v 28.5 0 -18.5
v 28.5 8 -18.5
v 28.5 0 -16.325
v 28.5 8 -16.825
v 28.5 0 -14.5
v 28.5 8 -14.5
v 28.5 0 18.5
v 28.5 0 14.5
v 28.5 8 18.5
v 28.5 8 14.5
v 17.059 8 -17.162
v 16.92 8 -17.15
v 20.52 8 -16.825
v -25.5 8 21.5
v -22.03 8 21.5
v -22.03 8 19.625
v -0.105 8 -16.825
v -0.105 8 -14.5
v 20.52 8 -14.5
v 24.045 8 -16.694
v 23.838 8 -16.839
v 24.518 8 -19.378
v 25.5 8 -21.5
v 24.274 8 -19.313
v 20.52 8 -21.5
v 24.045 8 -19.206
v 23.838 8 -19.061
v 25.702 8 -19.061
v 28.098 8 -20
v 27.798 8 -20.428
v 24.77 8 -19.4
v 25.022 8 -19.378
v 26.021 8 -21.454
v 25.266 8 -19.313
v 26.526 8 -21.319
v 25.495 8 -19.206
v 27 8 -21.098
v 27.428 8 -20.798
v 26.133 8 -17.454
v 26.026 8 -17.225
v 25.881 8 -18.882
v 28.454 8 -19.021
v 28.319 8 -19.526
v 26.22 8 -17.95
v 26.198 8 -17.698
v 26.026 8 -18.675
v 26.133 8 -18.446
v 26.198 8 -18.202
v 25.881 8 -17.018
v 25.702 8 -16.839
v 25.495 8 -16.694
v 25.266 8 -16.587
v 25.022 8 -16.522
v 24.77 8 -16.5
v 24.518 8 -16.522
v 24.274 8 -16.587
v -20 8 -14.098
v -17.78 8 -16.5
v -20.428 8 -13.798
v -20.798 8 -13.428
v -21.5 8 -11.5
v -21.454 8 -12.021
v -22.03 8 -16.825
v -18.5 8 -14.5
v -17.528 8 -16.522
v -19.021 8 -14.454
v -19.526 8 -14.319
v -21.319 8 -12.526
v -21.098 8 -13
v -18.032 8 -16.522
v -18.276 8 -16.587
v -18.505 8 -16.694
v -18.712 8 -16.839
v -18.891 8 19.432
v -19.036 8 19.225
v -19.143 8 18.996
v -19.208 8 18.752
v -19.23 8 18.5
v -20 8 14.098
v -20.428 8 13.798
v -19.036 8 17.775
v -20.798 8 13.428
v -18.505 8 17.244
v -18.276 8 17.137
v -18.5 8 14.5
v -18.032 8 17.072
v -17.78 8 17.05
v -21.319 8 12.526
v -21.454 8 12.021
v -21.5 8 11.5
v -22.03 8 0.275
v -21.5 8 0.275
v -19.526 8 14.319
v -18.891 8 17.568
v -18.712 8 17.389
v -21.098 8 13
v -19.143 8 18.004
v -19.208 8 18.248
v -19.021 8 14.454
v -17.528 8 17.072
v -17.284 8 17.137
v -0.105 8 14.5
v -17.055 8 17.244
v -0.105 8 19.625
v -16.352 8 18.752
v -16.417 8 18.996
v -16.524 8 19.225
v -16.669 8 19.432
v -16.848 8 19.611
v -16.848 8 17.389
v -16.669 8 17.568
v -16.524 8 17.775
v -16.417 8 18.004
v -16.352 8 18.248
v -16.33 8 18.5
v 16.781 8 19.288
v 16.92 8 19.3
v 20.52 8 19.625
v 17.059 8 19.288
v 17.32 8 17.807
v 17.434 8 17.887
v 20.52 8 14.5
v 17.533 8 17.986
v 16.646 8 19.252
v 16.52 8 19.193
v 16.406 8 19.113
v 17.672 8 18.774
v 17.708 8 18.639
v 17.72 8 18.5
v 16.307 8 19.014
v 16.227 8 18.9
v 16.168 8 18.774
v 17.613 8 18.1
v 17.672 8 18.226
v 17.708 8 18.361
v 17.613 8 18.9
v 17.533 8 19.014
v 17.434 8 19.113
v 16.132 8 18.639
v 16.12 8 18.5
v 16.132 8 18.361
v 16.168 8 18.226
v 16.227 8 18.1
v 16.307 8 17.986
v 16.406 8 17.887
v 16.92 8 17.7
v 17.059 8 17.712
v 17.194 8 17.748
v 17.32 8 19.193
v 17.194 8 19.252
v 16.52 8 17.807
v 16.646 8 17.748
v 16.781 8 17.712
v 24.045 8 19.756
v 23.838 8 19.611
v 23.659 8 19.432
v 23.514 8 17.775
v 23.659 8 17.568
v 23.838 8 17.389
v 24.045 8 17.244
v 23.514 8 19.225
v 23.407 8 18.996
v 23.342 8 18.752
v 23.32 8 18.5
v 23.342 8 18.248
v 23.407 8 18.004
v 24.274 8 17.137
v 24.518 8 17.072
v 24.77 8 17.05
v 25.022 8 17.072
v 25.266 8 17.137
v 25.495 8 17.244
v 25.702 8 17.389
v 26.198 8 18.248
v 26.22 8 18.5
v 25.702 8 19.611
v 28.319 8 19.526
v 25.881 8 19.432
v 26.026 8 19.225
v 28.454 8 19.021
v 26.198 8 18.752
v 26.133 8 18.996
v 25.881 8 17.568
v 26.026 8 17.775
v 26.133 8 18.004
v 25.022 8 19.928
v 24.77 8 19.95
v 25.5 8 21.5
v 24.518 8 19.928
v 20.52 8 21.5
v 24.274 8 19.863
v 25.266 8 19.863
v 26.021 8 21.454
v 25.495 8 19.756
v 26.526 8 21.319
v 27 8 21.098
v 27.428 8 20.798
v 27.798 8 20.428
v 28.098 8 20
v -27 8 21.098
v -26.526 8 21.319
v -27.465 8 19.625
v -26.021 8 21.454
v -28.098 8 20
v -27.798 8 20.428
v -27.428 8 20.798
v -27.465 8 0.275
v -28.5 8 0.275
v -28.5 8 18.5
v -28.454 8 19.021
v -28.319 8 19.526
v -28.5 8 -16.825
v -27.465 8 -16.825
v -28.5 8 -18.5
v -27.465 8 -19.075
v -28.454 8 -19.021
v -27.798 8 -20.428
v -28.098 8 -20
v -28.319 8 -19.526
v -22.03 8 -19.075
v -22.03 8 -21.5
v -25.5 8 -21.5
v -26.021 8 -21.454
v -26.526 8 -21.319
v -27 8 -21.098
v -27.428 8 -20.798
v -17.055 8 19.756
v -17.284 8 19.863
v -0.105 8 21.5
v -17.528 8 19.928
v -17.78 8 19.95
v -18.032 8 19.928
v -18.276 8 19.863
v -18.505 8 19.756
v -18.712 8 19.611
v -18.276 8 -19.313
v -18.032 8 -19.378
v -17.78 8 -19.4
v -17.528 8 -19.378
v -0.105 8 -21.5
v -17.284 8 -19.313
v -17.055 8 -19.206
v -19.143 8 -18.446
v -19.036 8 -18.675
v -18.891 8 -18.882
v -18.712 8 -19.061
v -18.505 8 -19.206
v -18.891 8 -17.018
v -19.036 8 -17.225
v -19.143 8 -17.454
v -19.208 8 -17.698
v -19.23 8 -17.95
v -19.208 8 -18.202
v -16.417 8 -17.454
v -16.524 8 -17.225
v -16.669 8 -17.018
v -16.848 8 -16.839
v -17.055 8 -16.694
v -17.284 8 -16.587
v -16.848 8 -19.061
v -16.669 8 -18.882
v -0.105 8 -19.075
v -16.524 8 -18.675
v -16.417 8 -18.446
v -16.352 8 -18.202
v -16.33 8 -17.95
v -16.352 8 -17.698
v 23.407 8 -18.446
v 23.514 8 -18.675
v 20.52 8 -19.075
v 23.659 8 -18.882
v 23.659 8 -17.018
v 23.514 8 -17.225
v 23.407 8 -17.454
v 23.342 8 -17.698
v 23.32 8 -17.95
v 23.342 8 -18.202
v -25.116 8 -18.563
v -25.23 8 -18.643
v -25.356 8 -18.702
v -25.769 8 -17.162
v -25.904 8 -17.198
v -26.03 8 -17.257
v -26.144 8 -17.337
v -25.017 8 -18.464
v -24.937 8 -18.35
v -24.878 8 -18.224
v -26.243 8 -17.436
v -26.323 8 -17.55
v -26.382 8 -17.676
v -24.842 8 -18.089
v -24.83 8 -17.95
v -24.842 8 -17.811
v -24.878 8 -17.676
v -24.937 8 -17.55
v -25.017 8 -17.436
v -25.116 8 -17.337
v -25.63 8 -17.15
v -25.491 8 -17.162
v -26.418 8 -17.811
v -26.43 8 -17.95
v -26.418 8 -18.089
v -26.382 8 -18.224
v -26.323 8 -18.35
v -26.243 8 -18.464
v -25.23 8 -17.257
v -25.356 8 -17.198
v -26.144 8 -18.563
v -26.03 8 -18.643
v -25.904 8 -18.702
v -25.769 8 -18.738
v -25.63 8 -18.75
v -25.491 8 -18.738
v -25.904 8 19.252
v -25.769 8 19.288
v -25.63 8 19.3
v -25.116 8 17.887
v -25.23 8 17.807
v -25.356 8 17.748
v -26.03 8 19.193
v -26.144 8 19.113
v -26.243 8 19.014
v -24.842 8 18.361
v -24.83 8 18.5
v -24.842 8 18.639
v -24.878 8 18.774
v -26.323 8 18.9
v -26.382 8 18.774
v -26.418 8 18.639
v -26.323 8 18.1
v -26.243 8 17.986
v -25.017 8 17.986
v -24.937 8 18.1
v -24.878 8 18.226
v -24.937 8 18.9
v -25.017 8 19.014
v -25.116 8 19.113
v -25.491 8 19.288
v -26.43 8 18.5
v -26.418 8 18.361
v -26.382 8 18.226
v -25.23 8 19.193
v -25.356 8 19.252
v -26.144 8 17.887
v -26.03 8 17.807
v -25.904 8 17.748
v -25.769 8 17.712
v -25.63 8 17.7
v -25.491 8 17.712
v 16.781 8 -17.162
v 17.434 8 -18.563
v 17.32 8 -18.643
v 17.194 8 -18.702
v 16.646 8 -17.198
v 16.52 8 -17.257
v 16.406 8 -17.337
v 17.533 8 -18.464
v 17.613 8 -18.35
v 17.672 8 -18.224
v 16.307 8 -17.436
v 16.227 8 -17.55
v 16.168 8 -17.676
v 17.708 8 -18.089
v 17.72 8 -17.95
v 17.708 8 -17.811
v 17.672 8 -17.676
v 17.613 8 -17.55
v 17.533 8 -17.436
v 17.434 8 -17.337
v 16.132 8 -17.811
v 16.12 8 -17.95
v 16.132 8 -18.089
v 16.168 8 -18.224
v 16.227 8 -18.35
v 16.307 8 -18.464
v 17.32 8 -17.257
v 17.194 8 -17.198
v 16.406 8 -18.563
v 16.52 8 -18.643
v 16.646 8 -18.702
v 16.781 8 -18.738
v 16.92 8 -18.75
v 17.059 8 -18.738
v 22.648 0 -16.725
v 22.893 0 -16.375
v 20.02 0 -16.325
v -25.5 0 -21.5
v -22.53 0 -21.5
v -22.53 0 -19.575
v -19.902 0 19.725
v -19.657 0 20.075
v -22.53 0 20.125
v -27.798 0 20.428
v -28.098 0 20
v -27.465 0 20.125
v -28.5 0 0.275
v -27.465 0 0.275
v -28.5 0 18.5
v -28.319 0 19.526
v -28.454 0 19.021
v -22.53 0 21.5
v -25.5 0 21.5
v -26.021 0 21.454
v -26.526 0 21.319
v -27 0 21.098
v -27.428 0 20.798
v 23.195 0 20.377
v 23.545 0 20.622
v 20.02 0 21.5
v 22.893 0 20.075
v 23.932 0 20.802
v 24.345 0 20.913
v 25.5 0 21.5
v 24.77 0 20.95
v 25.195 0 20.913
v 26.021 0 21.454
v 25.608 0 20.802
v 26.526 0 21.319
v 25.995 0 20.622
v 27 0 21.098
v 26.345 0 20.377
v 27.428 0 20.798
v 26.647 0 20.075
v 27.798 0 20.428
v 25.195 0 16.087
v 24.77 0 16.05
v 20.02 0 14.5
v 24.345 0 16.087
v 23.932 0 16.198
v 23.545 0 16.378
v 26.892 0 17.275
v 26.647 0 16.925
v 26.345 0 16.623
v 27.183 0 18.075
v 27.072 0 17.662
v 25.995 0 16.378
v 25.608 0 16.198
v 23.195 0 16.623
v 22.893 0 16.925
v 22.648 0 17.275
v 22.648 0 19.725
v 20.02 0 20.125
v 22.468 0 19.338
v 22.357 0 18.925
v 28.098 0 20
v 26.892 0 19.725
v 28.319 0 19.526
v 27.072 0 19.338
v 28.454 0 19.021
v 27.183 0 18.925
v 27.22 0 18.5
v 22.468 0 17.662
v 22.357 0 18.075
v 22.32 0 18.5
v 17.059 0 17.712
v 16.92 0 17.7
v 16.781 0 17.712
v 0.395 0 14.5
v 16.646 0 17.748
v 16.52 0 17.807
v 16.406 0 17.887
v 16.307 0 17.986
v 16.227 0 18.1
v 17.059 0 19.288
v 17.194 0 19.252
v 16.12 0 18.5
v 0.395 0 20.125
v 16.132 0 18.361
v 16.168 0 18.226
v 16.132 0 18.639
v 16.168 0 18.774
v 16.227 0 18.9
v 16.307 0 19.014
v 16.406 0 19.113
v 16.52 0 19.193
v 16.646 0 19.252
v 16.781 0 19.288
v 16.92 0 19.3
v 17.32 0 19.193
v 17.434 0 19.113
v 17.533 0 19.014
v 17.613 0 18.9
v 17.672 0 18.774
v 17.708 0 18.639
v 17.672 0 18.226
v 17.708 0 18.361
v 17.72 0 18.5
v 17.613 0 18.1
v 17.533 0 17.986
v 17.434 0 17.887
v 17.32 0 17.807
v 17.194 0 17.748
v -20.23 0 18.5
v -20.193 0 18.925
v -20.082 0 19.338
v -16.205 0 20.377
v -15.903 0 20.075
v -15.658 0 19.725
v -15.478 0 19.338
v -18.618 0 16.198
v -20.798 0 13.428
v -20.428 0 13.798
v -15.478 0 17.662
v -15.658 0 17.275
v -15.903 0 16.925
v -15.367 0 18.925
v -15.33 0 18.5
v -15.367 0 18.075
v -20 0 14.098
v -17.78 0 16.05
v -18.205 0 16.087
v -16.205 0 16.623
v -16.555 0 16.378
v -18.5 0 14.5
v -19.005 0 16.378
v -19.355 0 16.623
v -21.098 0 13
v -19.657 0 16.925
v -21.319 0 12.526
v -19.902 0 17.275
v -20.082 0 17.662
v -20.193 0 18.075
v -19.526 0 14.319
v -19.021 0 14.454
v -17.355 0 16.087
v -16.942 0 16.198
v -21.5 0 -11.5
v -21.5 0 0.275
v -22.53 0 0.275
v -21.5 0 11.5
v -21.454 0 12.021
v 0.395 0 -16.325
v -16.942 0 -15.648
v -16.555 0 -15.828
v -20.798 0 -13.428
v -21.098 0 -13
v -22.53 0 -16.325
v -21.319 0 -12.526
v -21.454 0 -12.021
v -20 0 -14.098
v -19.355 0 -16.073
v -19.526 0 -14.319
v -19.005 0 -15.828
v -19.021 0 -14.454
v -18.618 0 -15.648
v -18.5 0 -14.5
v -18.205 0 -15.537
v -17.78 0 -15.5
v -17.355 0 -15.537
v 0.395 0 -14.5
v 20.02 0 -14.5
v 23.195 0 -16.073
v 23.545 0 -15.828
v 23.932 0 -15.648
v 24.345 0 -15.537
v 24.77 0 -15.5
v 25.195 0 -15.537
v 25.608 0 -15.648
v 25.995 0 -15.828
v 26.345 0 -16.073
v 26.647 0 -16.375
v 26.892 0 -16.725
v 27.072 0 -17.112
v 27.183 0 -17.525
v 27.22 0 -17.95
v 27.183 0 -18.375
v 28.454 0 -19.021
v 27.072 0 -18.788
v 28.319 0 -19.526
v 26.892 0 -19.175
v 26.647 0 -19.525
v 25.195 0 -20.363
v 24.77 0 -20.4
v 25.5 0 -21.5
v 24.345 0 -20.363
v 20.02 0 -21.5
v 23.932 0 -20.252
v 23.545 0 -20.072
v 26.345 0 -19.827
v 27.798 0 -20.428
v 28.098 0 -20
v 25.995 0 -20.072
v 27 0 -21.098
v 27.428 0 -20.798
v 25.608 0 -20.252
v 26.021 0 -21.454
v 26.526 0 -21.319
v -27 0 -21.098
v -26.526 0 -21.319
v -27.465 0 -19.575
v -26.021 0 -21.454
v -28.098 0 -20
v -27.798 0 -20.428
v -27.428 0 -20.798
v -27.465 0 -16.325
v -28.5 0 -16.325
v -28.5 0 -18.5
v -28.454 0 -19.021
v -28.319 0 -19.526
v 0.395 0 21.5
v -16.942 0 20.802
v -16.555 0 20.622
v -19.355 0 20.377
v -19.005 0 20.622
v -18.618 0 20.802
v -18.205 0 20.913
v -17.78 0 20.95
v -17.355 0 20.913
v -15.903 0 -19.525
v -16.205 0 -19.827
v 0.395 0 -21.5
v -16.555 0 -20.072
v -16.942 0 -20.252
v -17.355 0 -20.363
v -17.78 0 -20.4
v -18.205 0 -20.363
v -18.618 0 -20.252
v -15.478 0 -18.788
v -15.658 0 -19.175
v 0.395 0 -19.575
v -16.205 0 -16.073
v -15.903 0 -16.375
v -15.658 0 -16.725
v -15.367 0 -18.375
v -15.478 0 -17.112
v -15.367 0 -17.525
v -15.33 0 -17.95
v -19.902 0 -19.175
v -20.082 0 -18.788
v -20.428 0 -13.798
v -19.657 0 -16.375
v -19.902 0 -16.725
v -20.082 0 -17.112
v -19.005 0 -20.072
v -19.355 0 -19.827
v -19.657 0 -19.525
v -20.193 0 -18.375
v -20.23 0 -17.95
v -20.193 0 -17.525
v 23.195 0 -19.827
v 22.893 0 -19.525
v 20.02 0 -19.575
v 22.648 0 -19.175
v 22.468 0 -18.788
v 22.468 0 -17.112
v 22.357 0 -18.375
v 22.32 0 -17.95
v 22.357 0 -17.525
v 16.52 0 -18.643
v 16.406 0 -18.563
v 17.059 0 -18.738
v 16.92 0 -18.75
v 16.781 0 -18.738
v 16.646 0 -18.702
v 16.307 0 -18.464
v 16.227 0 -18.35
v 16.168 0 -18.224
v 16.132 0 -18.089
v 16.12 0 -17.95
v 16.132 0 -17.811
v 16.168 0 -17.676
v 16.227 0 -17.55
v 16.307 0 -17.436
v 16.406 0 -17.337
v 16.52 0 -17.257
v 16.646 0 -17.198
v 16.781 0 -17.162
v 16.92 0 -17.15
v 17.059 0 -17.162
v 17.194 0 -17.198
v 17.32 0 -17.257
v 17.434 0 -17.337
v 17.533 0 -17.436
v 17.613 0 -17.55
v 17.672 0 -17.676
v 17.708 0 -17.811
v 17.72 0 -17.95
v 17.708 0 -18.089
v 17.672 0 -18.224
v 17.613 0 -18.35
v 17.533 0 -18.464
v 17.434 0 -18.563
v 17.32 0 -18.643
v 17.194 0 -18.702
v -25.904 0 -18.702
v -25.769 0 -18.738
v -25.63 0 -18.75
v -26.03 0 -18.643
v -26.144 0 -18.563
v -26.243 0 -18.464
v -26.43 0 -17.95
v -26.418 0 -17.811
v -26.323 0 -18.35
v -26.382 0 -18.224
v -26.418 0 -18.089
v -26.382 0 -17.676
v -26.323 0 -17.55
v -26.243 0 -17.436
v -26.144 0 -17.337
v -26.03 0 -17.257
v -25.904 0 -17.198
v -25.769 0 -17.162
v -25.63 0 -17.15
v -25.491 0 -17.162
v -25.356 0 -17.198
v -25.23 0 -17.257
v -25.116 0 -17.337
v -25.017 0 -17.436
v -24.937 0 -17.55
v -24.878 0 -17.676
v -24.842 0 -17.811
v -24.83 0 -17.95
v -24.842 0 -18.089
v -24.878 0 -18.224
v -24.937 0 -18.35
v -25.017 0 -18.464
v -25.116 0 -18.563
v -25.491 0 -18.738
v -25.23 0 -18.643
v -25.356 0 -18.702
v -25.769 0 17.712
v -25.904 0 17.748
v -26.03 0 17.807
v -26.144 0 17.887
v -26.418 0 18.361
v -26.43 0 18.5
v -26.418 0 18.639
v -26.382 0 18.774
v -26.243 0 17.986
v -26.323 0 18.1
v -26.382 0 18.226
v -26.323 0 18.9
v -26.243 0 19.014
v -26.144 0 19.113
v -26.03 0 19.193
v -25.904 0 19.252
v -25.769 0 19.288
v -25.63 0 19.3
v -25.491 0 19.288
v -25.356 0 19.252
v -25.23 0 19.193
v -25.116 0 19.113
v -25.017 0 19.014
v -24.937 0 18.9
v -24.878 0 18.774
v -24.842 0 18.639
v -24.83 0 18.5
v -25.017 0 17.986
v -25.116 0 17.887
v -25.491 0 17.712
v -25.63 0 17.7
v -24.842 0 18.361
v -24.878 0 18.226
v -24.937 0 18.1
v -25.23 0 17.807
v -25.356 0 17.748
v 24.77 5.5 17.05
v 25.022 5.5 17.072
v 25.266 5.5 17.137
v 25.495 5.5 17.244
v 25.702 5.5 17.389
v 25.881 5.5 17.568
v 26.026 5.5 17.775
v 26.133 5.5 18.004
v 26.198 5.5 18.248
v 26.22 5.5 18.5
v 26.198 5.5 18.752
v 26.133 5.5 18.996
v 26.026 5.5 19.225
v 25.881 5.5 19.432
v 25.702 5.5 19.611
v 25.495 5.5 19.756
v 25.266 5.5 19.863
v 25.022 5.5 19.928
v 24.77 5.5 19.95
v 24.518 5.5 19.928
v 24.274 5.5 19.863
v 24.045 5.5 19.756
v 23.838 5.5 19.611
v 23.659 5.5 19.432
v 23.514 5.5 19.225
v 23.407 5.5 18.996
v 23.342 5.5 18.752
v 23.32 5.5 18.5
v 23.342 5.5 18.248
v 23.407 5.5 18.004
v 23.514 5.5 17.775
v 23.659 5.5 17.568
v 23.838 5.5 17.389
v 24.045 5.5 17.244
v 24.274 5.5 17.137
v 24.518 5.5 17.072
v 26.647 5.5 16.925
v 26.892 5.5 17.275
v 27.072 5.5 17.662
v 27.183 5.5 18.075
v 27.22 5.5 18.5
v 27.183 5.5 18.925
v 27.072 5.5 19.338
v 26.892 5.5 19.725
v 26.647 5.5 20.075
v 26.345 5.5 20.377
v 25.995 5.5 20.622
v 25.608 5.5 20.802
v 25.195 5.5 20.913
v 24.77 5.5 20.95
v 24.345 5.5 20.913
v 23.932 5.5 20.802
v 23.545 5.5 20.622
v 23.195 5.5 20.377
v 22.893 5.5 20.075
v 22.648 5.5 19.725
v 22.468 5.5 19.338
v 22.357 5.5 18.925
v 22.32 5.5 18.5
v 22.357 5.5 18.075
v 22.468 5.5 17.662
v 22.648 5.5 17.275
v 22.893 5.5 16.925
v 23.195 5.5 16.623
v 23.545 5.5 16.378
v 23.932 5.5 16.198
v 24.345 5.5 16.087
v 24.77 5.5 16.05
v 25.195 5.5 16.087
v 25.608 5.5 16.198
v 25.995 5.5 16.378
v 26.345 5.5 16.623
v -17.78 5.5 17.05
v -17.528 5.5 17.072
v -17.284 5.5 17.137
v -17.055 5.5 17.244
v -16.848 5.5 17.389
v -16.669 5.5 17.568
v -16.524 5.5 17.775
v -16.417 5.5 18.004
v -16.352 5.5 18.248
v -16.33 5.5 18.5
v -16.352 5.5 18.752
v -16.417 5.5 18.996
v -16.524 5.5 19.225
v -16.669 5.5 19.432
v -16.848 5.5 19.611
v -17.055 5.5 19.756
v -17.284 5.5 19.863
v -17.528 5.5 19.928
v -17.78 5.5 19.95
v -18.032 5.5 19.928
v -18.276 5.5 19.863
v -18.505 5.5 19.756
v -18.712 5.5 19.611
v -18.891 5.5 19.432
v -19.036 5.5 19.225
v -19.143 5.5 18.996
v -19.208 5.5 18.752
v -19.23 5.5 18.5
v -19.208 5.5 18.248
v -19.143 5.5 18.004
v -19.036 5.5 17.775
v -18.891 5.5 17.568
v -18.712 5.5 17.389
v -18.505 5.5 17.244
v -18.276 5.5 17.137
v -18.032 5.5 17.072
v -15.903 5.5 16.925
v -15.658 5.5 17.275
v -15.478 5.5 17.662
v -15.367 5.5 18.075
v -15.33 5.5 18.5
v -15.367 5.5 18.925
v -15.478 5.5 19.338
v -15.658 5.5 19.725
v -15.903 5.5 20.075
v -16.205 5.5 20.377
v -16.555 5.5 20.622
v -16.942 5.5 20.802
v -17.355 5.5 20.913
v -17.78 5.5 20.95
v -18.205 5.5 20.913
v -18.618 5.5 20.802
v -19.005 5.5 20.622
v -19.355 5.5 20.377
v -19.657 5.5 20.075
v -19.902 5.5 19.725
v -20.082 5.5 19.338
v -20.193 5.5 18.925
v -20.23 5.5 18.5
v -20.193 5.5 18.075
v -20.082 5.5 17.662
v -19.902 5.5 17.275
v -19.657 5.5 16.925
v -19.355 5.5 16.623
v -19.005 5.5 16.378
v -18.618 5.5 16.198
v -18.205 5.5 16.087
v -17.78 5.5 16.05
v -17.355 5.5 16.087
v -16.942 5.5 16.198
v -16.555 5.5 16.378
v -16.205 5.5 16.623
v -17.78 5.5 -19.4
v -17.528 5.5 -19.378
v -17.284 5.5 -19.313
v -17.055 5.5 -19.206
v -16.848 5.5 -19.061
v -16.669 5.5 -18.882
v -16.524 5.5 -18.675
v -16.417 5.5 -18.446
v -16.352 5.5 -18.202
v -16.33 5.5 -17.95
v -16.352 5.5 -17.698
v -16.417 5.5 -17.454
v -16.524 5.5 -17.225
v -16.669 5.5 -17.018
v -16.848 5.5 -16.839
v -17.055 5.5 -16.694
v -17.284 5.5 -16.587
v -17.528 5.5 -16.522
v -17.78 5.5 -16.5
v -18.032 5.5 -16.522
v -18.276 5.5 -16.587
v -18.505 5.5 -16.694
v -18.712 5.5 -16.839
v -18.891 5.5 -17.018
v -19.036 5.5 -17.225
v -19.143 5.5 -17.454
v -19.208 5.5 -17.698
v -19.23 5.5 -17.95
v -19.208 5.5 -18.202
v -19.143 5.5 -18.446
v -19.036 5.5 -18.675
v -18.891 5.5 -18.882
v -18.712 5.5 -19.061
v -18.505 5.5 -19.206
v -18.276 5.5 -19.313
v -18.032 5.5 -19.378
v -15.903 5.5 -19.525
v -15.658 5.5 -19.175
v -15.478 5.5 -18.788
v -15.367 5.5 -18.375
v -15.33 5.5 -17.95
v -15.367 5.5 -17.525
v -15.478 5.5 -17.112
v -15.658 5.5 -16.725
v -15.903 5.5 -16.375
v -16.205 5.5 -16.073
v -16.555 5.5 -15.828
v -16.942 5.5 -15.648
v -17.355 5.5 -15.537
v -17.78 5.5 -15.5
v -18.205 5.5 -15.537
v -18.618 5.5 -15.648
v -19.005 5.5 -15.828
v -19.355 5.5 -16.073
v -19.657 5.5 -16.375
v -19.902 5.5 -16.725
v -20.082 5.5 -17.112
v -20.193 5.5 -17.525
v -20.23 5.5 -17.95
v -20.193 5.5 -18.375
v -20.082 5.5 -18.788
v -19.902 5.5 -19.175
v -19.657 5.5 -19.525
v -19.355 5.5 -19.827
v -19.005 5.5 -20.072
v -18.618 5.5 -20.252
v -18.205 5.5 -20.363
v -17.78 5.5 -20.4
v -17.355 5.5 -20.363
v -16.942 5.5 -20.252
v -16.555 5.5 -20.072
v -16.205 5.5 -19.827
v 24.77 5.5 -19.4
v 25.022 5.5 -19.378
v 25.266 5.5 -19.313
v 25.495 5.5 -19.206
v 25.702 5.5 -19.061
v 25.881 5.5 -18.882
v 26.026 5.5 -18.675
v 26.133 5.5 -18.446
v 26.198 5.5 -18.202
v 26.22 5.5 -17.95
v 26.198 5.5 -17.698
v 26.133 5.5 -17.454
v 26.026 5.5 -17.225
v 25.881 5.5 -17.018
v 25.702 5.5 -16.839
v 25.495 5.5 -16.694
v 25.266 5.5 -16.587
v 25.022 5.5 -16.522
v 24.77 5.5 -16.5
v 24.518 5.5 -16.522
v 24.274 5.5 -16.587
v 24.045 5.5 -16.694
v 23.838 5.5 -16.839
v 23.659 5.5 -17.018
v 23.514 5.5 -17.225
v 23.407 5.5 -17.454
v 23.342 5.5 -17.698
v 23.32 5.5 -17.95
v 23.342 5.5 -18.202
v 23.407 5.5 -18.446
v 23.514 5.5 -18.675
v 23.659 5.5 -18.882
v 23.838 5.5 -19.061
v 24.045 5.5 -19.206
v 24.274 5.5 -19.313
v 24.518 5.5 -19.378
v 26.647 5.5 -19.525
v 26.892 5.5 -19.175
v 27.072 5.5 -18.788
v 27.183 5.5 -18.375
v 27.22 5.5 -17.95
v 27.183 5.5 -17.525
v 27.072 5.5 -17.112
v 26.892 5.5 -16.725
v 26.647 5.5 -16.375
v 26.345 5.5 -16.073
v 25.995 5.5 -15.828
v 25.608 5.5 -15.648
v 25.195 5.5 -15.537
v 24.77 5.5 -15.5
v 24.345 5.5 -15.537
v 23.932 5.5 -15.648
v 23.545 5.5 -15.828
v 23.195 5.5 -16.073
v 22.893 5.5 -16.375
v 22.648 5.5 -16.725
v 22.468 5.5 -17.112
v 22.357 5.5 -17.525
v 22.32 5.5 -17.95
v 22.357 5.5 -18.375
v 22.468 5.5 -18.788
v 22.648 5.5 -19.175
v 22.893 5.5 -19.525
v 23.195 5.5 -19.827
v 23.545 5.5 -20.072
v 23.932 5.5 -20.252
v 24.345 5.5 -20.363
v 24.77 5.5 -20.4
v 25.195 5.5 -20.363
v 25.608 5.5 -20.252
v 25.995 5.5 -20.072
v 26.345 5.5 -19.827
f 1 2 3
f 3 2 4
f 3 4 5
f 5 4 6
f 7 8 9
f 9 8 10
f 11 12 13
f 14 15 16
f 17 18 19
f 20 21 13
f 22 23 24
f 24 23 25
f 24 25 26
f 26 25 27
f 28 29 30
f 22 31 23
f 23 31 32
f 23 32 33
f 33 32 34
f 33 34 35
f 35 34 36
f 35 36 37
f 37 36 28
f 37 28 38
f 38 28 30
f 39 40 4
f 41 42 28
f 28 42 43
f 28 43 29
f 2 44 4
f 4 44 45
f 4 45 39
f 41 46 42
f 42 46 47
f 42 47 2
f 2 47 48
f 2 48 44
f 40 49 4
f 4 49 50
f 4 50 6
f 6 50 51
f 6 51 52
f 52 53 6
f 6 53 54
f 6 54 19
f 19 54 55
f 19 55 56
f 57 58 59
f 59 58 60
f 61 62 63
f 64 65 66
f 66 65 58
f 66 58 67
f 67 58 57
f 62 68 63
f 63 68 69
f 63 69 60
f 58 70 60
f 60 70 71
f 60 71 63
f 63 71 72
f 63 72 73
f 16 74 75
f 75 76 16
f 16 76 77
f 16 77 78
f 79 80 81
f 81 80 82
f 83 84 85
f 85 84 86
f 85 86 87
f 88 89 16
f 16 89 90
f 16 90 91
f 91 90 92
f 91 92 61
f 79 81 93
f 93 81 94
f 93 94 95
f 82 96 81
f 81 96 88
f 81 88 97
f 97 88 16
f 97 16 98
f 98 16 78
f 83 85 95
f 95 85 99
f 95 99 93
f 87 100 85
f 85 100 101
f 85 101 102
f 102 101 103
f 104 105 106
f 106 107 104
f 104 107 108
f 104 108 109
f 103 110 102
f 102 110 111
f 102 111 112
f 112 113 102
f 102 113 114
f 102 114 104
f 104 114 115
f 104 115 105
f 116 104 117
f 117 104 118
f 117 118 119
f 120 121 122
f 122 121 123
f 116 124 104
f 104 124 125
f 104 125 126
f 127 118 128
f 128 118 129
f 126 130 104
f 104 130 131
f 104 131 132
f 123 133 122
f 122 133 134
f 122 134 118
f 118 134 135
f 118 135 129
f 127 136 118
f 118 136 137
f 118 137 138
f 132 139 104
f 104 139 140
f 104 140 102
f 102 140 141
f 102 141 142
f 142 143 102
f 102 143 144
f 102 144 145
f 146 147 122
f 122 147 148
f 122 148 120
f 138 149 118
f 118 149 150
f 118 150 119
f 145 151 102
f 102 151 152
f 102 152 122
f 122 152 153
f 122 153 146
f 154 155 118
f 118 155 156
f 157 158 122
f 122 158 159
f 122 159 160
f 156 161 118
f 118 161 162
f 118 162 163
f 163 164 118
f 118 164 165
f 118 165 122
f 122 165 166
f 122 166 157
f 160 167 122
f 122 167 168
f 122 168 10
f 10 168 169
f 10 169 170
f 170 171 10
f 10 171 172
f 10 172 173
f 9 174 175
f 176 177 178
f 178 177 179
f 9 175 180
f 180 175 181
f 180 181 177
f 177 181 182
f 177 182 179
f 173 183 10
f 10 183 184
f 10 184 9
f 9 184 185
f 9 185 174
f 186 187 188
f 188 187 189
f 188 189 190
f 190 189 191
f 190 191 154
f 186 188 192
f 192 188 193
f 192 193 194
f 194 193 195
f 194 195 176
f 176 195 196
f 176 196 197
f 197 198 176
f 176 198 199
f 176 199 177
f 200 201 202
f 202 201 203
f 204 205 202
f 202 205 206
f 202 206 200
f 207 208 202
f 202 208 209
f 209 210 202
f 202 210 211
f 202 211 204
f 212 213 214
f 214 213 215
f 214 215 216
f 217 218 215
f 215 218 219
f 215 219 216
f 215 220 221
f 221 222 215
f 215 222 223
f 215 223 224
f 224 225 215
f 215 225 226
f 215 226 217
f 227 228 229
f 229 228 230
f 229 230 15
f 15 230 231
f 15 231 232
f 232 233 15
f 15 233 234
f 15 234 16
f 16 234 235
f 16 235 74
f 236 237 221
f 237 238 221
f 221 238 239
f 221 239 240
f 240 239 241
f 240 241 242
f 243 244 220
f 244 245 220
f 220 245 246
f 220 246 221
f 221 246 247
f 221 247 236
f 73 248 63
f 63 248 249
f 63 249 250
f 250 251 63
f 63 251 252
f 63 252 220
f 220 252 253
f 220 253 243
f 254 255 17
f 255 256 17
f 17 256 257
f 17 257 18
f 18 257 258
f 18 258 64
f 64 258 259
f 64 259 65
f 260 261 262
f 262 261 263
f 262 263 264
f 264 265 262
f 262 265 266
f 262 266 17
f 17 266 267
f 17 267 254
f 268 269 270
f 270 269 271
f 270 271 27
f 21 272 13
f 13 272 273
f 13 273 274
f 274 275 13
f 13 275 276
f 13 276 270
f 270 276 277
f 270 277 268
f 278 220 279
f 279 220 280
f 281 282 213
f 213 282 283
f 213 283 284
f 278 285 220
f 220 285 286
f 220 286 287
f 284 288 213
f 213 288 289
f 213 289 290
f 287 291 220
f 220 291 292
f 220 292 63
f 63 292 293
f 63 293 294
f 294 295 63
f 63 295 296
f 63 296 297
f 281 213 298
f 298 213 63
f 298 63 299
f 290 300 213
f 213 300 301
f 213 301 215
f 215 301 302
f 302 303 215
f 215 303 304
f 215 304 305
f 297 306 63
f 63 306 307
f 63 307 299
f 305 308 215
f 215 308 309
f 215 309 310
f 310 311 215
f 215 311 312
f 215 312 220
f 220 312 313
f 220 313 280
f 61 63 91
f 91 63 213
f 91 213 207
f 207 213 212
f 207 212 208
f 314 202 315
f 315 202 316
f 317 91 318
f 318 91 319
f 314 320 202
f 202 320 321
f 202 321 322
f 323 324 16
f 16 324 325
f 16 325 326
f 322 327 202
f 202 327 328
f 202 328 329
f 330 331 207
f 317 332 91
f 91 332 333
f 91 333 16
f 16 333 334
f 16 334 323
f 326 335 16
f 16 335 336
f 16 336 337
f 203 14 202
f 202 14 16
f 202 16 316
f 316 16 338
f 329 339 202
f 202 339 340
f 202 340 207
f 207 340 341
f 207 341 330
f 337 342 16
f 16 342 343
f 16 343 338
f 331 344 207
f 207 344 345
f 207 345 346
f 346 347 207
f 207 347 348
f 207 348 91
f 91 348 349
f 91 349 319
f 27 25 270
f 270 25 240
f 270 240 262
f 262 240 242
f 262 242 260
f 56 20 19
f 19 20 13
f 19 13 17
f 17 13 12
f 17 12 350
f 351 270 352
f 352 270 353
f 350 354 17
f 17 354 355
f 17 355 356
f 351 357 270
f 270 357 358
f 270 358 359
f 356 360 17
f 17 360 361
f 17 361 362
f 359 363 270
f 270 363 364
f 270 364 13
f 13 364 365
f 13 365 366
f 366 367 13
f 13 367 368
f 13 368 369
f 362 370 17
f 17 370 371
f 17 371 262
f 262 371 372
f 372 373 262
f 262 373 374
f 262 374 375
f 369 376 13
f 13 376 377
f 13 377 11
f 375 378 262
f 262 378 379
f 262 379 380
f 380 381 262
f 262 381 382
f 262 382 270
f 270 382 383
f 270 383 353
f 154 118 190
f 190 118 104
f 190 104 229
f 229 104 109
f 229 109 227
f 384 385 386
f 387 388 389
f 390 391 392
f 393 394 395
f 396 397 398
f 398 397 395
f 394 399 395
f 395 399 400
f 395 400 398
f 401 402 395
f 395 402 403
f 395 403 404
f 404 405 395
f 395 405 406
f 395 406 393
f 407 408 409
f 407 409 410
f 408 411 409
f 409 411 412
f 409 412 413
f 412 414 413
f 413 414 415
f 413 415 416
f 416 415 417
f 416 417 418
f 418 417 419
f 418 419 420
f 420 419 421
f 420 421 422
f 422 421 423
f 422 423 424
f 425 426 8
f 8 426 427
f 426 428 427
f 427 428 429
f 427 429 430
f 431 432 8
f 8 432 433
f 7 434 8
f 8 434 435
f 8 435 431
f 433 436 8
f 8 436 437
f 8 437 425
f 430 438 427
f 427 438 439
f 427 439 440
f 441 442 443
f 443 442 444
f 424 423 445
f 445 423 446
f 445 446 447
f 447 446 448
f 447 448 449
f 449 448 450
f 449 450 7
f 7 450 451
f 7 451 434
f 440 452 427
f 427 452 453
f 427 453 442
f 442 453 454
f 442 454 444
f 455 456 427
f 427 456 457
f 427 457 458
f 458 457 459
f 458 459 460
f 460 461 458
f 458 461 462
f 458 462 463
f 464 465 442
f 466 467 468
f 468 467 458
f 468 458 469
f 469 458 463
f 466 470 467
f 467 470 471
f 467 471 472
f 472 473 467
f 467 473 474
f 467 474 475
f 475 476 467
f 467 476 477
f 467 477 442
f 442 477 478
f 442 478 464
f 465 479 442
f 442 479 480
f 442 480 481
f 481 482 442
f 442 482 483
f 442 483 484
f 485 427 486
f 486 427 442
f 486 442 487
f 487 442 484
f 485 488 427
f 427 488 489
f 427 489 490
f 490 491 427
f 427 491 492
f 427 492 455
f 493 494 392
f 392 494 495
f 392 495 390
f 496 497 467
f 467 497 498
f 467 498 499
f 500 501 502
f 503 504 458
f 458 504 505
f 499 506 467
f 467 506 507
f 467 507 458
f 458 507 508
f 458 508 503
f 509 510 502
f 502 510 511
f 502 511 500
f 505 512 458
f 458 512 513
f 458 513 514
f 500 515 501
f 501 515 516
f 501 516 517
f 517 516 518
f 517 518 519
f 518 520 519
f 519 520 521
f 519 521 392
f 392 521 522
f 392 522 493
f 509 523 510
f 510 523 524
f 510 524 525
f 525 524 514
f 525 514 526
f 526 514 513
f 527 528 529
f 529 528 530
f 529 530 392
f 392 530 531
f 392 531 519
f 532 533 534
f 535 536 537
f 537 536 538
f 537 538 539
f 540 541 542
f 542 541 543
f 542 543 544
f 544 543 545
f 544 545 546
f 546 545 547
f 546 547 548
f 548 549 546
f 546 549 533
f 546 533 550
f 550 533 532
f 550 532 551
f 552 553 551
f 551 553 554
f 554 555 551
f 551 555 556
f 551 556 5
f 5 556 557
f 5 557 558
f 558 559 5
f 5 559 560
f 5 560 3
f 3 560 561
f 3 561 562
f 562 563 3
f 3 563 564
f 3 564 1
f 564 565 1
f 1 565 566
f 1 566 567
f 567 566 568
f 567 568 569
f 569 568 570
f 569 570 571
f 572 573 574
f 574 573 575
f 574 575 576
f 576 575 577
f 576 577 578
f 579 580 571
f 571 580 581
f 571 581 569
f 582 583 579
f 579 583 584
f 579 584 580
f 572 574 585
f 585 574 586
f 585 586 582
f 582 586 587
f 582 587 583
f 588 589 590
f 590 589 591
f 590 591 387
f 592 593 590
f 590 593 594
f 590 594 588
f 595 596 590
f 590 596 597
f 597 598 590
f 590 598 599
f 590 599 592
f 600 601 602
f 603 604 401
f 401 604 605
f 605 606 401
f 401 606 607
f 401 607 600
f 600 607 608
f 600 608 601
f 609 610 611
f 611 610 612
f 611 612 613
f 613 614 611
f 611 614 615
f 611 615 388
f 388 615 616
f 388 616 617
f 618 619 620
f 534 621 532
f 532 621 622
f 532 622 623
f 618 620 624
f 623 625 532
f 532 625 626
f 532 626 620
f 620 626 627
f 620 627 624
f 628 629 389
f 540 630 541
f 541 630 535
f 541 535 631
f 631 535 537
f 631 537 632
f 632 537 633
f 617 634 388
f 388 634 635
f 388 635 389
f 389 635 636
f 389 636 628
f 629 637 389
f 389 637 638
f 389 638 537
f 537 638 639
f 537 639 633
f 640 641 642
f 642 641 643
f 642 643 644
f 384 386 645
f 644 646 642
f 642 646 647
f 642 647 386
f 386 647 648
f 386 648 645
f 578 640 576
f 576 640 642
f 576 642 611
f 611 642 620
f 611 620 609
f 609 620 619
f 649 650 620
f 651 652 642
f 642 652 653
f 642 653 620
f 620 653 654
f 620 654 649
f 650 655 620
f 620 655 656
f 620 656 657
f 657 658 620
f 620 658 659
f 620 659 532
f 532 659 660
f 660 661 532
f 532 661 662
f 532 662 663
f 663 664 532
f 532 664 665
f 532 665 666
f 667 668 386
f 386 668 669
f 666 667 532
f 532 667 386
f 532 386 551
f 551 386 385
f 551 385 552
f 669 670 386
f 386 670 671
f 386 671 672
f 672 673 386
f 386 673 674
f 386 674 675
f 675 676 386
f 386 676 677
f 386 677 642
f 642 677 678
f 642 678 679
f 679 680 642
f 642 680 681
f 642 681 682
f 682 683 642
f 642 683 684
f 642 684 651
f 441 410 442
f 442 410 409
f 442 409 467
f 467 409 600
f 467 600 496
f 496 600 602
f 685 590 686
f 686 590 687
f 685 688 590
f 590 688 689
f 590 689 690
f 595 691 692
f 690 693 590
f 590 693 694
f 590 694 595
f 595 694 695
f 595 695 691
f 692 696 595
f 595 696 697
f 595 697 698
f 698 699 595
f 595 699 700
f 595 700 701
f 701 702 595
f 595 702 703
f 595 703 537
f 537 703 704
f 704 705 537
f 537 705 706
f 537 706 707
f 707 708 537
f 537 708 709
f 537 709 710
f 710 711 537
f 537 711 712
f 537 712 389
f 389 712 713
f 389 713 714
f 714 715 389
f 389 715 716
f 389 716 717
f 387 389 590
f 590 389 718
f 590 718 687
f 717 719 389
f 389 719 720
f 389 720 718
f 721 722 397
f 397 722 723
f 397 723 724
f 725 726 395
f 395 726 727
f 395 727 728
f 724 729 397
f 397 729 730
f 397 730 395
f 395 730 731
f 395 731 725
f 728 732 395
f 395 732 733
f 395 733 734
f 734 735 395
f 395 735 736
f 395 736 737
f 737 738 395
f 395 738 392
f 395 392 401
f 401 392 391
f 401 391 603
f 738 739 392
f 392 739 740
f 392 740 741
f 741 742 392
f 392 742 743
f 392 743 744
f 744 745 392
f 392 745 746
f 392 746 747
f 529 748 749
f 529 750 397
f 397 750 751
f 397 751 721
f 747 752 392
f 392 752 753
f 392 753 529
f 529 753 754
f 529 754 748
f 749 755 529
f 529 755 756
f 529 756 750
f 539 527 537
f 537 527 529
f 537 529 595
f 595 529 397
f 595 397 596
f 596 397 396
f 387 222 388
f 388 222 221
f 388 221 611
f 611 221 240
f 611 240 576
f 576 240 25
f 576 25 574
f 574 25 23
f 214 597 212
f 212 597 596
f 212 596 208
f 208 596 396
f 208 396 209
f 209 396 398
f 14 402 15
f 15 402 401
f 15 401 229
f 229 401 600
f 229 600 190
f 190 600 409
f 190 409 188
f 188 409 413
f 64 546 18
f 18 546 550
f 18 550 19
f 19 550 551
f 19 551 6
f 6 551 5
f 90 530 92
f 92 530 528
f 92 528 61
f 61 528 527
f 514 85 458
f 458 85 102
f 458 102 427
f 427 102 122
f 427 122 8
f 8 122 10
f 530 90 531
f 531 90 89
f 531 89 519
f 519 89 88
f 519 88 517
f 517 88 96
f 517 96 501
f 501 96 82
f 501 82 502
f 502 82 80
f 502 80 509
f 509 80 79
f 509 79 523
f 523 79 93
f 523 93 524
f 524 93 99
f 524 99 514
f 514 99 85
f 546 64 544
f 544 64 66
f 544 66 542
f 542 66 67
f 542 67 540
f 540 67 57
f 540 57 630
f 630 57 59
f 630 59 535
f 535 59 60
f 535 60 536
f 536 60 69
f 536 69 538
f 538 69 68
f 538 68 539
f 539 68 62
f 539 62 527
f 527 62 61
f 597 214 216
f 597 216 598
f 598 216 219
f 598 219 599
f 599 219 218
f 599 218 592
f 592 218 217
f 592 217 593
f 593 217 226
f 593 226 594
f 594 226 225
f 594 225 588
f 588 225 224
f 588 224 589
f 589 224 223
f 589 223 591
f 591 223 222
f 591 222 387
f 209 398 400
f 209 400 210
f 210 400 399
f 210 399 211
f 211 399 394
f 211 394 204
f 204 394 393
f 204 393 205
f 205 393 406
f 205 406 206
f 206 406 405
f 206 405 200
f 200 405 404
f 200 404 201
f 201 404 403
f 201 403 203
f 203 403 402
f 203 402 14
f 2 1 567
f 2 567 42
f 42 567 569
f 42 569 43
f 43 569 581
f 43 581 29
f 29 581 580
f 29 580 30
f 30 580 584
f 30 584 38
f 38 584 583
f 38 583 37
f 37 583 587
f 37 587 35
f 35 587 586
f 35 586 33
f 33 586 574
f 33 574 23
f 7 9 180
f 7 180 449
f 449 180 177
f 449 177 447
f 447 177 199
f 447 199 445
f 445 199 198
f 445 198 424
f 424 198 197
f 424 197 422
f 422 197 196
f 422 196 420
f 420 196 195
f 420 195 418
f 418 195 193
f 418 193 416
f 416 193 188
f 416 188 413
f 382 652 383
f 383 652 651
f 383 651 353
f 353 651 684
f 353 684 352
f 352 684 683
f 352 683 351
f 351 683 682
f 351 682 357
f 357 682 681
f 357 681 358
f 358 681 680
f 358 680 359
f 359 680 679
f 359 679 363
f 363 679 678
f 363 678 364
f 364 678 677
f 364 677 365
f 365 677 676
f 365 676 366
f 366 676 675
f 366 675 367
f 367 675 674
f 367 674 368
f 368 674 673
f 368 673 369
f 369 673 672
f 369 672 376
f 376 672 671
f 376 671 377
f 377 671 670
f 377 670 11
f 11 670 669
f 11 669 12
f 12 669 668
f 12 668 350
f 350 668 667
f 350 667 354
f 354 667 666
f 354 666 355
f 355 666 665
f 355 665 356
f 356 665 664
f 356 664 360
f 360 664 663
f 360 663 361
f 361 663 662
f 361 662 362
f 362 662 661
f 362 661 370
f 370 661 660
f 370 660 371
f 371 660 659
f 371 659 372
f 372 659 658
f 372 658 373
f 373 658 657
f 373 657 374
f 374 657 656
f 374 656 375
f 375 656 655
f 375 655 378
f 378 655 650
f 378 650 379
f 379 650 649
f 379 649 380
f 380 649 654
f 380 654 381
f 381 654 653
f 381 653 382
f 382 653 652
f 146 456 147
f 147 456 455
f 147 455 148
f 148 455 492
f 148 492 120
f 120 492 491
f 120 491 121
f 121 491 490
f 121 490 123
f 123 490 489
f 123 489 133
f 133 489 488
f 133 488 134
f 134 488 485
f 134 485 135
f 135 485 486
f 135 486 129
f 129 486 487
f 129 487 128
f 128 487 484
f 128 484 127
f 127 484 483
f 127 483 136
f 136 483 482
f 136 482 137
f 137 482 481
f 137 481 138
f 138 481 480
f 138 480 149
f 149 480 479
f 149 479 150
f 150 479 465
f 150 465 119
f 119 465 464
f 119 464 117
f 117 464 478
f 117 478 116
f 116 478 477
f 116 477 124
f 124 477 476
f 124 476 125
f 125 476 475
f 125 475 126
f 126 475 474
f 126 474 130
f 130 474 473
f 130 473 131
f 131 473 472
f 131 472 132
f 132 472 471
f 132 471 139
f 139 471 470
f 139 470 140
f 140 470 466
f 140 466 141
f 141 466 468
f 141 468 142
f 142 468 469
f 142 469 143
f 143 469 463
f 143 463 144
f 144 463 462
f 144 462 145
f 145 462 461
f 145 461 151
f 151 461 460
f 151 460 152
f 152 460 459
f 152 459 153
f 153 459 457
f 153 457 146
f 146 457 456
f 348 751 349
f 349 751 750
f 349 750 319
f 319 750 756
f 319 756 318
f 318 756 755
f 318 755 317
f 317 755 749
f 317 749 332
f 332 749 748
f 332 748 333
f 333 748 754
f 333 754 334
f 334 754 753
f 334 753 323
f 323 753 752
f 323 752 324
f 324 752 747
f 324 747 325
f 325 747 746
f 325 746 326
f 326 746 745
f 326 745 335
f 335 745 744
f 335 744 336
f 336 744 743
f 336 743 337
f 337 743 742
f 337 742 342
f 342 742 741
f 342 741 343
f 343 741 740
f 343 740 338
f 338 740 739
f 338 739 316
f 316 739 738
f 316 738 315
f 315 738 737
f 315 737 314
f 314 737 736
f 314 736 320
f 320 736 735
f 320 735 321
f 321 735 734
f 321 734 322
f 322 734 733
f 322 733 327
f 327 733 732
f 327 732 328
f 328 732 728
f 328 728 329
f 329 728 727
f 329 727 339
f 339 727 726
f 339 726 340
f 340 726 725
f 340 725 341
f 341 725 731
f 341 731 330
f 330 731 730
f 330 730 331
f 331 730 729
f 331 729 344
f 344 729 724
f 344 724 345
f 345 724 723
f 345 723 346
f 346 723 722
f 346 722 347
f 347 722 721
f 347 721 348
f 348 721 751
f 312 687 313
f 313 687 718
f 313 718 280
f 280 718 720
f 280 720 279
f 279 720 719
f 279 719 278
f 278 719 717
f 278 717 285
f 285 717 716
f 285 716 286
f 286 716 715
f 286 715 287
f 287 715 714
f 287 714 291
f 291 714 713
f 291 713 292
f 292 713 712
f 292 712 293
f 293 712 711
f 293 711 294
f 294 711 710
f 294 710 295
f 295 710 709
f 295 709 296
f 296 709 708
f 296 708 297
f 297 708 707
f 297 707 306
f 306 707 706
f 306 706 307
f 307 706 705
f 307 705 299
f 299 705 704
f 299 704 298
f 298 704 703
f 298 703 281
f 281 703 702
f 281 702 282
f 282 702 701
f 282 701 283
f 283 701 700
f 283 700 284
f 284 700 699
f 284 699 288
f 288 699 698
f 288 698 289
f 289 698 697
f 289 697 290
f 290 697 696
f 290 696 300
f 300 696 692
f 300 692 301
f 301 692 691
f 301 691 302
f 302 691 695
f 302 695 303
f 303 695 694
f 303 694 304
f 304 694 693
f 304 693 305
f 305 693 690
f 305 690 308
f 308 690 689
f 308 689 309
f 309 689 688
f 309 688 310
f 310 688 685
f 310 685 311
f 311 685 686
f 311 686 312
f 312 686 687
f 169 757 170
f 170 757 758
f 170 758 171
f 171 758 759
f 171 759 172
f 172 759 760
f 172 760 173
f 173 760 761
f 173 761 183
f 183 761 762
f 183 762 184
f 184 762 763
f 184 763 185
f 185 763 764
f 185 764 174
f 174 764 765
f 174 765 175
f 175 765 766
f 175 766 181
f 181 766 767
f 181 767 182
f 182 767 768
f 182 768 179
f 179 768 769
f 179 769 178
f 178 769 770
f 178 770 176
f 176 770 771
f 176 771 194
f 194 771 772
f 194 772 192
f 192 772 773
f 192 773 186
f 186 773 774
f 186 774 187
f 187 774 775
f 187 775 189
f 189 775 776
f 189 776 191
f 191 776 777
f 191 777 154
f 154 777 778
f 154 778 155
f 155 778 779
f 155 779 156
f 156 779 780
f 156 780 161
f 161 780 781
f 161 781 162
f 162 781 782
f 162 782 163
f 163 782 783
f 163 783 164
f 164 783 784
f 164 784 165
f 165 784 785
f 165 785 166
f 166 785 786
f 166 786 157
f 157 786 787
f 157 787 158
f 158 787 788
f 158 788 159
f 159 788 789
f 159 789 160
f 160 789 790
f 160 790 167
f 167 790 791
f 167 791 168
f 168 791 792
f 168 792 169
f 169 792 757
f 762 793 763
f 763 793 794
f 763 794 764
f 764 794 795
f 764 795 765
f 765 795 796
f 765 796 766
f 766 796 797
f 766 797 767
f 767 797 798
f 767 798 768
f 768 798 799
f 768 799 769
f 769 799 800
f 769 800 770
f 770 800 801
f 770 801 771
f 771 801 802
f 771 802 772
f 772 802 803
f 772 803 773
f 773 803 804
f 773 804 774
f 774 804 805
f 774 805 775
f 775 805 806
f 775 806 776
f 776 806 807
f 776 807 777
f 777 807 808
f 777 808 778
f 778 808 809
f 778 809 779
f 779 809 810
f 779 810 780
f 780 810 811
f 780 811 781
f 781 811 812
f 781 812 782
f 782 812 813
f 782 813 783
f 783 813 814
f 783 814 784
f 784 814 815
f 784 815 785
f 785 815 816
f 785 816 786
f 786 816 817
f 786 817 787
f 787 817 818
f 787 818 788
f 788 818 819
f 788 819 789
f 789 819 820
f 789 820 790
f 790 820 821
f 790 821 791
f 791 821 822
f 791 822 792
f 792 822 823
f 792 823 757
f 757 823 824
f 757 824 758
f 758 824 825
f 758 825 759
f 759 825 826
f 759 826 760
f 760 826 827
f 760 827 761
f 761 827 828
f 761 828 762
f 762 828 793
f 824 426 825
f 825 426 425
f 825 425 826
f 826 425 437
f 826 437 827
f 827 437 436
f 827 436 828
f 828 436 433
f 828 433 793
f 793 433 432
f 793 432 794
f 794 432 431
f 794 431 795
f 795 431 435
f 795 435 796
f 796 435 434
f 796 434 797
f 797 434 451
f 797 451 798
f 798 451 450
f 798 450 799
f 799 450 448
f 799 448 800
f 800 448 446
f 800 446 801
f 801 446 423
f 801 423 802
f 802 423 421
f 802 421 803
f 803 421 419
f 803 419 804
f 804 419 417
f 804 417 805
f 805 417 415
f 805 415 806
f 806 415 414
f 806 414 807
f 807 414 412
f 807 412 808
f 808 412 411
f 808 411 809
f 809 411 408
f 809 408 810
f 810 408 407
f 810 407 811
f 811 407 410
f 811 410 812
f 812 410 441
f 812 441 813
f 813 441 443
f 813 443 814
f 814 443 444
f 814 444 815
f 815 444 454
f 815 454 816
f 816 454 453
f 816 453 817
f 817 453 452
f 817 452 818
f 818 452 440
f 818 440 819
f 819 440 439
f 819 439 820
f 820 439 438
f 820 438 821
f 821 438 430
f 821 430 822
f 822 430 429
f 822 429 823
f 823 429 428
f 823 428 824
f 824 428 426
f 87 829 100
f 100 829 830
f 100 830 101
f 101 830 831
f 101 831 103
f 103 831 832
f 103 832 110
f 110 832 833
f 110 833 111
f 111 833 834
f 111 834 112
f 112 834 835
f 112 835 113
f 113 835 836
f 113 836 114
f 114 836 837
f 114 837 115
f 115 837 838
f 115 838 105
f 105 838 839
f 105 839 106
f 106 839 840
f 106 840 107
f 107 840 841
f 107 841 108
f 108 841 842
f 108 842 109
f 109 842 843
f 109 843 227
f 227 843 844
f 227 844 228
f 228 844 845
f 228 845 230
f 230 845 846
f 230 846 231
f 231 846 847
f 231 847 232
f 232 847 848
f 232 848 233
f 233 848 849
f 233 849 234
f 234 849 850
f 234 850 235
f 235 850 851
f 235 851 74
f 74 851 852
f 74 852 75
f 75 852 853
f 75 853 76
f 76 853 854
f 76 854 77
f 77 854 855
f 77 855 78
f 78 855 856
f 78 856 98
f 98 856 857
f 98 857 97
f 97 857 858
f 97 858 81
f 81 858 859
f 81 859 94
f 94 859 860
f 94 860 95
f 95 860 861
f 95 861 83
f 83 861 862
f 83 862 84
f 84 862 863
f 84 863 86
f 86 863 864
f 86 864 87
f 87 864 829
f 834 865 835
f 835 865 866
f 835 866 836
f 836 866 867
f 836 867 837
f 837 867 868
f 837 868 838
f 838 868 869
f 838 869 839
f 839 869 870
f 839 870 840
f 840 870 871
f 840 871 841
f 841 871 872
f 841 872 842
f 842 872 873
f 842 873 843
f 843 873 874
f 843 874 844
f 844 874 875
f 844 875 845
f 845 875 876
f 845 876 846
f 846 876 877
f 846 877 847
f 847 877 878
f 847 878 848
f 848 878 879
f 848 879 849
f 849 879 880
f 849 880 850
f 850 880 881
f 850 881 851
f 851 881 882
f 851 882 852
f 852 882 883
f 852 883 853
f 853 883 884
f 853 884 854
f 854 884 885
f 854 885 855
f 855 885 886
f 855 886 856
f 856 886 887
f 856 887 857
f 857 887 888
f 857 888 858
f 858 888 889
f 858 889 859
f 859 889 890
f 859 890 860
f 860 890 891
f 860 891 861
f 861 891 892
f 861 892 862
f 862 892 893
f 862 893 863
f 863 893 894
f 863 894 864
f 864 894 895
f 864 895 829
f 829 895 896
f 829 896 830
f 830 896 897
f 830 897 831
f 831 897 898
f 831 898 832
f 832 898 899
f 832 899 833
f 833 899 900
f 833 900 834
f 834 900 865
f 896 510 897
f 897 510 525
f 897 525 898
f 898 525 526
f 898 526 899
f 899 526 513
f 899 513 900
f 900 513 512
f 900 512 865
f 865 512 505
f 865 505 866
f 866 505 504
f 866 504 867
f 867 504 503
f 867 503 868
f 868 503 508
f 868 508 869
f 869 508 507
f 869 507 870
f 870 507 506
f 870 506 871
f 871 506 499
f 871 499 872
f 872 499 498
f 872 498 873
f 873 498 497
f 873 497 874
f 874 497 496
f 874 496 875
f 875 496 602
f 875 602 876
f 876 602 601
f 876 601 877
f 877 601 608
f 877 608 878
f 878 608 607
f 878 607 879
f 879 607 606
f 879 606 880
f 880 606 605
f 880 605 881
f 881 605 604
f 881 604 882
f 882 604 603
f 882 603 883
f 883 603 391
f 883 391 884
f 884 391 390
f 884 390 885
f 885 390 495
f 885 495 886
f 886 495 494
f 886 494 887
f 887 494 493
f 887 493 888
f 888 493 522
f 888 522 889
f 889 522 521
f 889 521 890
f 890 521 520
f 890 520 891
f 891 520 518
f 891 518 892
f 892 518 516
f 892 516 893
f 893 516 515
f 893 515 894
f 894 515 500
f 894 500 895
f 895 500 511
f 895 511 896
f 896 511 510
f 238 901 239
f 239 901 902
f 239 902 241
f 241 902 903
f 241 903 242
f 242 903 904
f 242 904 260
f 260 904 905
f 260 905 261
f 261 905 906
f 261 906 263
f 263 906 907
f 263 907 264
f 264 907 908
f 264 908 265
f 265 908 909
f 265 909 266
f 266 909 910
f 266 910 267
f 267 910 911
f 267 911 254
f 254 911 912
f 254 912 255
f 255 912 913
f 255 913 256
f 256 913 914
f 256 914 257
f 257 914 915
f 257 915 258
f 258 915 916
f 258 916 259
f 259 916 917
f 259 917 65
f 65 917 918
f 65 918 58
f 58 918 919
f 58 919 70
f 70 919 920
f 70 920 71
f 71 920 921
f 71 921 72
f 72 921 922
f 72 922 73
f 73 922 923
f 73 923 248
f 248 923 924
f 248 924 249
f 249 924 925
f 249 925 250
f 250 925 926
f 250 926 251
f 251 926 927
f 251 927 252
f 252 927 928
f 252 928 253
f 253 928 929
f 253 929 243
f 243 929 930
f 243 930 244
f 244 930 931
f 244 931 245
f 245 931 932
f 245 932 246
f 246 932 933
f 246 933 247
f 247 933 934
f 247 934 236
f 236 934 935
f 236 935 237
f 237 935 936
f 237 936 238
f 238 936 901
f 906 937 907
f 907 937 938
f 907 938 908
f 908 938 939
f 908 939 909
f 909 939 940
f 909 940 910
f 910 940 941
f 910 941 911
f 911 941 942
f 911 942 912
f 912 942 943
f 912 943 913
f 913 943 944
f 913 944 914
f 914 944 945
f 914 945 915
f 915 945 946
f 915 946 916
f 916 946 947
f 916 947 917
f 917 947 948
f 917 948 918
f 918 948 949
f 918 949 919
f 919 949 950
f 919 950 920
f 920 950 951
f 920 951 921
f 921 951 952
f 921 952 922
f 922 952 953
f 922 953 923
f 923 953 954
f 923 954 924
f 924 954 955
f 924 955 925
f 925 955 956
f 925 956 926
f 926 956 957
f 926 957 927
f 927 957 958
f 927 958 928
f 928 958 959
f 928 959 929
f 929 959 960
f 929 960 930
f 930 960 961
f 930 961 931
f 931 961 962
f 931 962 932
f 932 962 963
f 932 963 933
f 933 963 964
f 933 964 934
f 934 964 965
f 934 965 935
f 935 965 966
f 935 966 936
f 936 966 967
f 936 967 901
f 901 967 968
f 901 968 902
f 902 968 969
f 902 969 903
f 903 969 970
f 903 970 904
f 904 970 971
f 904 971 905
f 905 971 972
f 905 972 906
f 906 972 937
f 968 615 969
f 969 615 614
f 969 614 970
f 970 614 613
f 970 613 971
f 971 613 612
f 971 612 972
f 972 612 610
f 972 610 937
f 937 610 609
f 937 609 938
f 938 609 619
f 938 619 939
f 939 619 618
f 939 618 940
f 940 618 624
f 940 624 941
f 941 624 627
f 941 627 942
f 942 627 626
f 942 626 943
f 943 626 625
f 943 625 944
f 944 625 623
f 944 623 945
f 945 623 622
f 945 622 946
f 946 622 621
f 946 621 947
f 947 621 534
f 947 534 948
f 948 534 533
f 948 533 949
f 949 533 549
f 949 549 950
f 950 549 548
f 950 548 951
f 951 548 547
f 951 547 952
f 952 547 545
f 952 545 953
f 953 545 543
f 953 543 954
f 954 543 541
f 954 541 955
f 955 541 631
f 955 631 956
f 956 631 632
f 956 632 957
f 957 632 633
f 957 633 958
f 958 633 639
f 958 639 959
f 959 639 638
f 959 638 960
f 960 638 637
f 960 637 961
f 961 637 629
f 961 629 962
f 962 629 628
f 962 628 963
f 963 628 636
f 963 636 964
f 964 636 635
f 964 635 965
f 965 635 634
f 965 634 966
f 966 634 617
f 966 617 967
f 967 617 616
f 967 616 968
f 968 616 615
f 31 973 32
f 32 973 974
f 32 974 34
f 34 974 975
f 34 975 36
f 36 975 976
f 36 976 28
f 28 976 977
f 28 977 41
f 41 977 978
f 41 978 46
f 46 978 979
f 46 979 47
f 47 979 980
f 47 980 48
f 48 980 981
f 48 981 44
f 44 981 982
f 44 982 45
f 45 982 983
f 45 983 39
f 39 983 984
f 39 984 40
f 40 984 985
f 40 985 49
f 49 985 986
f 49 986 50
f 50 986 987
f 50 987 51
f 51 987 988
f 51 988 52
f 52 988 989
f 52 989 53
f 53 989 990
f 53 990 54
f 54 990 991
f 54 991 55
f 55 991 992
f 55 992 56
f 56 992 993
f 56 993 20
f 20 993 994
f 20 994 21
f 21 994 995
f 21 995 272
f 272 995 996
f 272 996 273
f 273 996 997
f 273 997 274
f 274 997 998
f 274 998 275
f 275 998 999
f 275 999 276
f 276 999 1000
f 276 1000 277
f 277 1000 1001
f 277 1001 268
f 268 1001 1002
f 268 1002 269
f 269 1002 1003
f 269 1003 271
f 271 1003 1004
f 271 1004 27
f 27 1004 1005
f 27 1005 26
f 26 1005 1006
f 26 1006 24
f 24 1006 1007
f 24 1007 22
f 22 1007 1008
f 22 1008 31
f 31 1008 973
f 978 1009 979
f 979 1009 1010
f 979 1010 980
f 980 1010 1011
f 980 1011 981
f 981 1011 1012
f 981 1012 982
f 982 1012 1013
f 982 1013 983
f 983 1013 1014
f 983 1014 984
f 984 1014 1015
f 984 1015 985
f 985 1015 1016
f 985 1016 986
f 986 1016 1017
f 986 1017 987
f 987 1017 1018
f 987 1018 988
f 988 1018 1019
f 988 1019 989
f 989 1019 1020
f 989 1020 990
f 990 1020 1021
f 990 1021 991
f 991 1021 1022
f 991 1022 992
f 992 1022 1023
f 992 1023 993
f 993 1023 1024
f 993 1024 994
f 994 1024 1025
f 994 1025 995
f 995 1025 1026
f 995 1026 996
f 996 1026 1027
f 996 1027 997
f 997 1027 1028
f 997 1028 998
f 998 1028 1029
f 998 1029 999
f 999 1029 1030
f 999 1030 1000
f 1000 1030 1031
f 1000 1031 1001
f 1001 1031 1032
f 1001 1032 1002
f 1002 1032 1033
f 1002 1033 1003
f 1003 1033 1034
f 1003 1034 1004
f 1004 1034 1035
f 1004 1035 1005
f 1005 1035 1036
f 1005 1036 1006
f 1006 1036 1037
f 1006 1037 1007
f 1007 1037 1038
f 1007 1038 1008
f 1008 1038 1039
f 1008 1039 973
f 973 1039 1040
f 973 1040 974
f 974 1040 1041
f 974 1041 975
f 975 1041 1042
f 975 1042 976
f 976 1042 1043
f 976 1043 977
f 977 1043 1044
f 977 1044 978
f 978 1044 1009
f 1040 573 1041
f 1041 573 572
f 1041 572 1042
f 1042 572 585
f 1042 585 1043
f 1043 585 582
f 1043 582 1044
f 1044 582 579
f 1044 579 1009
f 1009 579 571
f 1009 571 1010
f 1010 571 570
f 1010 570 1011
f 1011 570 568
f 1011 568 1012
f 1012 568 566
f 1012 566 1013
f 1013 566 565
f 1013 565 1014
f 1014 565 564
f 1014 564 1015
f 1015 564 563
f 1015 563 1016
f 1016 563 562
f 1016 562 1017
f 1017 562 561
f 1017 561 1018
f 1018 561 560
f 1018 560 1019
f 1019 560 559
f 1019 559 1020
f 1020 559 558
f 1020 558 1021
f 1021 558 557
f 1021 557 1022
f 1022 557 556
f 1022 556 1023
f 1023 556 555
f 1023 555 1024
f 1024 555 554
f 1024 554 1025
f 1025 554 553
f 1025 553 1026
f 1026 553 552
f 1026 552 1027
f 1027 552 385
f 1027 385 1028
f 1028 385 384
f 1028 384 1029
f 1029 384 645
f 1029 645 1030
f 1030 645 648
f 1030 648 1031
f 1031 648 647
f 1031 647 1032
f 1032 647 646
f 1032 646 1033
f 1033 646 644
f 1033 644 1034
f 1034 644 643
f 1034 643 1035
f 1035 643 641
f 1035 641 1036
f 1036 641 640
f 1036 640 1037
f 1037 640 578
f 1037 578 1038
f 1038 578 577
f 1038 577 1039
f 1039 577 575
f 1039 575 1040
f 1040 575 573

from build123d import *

# Parameters (mm, degrees)
SKETCH1_W                      = 57
SKETCH1_H                      = 43
BOSS_EXTRUDE1_DEPTH            = 8
SKETCH2_W                      = 50
SKETCH2_H                      = 29
CUT_EXTRUDE1_DEPTH             = 8
FILLET1_R                      = 3
M2X0_4_TAPPED_HOLE1_D          = 1.6
CBORE_FOR_M2_SHCS1_D           = 2.9
CBORE_FOR_M2_SHCS1_CBORE_D     = 4.9
CBORE_FOR_M2_SHCS1_CBORE_DEPTH = 5.5


with BuildPart() as part:
    # Sketch1 → Boss-Extrude1 (new body)
    with BuildSketch(Plane(origin=(0, 0, 0), x_dir=(1, 0, 0), z_dir=(0, 1, 0))):
        Rectangle(SKETCH1_W, SKETCH1_H)
    extrude(amount=BOSS_EXTRUDE1_DEPTH)

    # Sketch2 → Cut-Extrude1 (cut)
    with BuildSketch(Plane(origin=(0, 0, 0), x_dir=(1, 0, 0), z_dir=(0, 1, 0))):
        with Locations((3.5, 0)):
            Rectangle(SKETCH2_W, SKETCH2_H)
    extrude(amount=CUT_EXTRUDE1_DEPTH, mode=Mode.SUBTRACT)

    # Fillet1
    fillet1_edges = [part.edges().sort_by_distance(p)[0] for p in [
        (-21.5, 4, -14.5),
        (-21.5, 4, 14.5),
        (-28.5, 4, -21.5),
        (-28.5, 4, 21.5),
        (28.5, 4, 21.5),
        (28.5, 4, -21.5),
    ]]
    fillet(fillet1_edges, radius=FILLET1_R)

    # M2x0.4 Tapped Hole1 (through all)
    with Locations(Plane(origin=(0, 0, 0), x_dir=(-1, 0, 0), z_dir=(0, -1, 0))):
        with Locations((25.63, 17.95), (25.63, -18.5), (-16.92, -18.5), (-16.92, 17.95)):
            Hole(M2X0_4_TAPPED_HOLE1_D / 2)

    # CBORE for M2 SHCS1 (through all)
    with Locations(Plane(origin=(0, 0, 0), x_dir=(-1, 0, 0), z_dir=(0, -1, 0))):
        with Locations((-24.77, 17.95), (17.78, 17.95), (17.78, -18.5), (-24.77, -18.5)):
            CounterBoreHole(CBORE_FOR_M2_SHCS1_D / 2, CBORE_FOR_M2_SHCS1_CBORE_D / 2, CBORE_FOR_M2_SHCS1_CBORE_DEPTH)


solid = part.part
